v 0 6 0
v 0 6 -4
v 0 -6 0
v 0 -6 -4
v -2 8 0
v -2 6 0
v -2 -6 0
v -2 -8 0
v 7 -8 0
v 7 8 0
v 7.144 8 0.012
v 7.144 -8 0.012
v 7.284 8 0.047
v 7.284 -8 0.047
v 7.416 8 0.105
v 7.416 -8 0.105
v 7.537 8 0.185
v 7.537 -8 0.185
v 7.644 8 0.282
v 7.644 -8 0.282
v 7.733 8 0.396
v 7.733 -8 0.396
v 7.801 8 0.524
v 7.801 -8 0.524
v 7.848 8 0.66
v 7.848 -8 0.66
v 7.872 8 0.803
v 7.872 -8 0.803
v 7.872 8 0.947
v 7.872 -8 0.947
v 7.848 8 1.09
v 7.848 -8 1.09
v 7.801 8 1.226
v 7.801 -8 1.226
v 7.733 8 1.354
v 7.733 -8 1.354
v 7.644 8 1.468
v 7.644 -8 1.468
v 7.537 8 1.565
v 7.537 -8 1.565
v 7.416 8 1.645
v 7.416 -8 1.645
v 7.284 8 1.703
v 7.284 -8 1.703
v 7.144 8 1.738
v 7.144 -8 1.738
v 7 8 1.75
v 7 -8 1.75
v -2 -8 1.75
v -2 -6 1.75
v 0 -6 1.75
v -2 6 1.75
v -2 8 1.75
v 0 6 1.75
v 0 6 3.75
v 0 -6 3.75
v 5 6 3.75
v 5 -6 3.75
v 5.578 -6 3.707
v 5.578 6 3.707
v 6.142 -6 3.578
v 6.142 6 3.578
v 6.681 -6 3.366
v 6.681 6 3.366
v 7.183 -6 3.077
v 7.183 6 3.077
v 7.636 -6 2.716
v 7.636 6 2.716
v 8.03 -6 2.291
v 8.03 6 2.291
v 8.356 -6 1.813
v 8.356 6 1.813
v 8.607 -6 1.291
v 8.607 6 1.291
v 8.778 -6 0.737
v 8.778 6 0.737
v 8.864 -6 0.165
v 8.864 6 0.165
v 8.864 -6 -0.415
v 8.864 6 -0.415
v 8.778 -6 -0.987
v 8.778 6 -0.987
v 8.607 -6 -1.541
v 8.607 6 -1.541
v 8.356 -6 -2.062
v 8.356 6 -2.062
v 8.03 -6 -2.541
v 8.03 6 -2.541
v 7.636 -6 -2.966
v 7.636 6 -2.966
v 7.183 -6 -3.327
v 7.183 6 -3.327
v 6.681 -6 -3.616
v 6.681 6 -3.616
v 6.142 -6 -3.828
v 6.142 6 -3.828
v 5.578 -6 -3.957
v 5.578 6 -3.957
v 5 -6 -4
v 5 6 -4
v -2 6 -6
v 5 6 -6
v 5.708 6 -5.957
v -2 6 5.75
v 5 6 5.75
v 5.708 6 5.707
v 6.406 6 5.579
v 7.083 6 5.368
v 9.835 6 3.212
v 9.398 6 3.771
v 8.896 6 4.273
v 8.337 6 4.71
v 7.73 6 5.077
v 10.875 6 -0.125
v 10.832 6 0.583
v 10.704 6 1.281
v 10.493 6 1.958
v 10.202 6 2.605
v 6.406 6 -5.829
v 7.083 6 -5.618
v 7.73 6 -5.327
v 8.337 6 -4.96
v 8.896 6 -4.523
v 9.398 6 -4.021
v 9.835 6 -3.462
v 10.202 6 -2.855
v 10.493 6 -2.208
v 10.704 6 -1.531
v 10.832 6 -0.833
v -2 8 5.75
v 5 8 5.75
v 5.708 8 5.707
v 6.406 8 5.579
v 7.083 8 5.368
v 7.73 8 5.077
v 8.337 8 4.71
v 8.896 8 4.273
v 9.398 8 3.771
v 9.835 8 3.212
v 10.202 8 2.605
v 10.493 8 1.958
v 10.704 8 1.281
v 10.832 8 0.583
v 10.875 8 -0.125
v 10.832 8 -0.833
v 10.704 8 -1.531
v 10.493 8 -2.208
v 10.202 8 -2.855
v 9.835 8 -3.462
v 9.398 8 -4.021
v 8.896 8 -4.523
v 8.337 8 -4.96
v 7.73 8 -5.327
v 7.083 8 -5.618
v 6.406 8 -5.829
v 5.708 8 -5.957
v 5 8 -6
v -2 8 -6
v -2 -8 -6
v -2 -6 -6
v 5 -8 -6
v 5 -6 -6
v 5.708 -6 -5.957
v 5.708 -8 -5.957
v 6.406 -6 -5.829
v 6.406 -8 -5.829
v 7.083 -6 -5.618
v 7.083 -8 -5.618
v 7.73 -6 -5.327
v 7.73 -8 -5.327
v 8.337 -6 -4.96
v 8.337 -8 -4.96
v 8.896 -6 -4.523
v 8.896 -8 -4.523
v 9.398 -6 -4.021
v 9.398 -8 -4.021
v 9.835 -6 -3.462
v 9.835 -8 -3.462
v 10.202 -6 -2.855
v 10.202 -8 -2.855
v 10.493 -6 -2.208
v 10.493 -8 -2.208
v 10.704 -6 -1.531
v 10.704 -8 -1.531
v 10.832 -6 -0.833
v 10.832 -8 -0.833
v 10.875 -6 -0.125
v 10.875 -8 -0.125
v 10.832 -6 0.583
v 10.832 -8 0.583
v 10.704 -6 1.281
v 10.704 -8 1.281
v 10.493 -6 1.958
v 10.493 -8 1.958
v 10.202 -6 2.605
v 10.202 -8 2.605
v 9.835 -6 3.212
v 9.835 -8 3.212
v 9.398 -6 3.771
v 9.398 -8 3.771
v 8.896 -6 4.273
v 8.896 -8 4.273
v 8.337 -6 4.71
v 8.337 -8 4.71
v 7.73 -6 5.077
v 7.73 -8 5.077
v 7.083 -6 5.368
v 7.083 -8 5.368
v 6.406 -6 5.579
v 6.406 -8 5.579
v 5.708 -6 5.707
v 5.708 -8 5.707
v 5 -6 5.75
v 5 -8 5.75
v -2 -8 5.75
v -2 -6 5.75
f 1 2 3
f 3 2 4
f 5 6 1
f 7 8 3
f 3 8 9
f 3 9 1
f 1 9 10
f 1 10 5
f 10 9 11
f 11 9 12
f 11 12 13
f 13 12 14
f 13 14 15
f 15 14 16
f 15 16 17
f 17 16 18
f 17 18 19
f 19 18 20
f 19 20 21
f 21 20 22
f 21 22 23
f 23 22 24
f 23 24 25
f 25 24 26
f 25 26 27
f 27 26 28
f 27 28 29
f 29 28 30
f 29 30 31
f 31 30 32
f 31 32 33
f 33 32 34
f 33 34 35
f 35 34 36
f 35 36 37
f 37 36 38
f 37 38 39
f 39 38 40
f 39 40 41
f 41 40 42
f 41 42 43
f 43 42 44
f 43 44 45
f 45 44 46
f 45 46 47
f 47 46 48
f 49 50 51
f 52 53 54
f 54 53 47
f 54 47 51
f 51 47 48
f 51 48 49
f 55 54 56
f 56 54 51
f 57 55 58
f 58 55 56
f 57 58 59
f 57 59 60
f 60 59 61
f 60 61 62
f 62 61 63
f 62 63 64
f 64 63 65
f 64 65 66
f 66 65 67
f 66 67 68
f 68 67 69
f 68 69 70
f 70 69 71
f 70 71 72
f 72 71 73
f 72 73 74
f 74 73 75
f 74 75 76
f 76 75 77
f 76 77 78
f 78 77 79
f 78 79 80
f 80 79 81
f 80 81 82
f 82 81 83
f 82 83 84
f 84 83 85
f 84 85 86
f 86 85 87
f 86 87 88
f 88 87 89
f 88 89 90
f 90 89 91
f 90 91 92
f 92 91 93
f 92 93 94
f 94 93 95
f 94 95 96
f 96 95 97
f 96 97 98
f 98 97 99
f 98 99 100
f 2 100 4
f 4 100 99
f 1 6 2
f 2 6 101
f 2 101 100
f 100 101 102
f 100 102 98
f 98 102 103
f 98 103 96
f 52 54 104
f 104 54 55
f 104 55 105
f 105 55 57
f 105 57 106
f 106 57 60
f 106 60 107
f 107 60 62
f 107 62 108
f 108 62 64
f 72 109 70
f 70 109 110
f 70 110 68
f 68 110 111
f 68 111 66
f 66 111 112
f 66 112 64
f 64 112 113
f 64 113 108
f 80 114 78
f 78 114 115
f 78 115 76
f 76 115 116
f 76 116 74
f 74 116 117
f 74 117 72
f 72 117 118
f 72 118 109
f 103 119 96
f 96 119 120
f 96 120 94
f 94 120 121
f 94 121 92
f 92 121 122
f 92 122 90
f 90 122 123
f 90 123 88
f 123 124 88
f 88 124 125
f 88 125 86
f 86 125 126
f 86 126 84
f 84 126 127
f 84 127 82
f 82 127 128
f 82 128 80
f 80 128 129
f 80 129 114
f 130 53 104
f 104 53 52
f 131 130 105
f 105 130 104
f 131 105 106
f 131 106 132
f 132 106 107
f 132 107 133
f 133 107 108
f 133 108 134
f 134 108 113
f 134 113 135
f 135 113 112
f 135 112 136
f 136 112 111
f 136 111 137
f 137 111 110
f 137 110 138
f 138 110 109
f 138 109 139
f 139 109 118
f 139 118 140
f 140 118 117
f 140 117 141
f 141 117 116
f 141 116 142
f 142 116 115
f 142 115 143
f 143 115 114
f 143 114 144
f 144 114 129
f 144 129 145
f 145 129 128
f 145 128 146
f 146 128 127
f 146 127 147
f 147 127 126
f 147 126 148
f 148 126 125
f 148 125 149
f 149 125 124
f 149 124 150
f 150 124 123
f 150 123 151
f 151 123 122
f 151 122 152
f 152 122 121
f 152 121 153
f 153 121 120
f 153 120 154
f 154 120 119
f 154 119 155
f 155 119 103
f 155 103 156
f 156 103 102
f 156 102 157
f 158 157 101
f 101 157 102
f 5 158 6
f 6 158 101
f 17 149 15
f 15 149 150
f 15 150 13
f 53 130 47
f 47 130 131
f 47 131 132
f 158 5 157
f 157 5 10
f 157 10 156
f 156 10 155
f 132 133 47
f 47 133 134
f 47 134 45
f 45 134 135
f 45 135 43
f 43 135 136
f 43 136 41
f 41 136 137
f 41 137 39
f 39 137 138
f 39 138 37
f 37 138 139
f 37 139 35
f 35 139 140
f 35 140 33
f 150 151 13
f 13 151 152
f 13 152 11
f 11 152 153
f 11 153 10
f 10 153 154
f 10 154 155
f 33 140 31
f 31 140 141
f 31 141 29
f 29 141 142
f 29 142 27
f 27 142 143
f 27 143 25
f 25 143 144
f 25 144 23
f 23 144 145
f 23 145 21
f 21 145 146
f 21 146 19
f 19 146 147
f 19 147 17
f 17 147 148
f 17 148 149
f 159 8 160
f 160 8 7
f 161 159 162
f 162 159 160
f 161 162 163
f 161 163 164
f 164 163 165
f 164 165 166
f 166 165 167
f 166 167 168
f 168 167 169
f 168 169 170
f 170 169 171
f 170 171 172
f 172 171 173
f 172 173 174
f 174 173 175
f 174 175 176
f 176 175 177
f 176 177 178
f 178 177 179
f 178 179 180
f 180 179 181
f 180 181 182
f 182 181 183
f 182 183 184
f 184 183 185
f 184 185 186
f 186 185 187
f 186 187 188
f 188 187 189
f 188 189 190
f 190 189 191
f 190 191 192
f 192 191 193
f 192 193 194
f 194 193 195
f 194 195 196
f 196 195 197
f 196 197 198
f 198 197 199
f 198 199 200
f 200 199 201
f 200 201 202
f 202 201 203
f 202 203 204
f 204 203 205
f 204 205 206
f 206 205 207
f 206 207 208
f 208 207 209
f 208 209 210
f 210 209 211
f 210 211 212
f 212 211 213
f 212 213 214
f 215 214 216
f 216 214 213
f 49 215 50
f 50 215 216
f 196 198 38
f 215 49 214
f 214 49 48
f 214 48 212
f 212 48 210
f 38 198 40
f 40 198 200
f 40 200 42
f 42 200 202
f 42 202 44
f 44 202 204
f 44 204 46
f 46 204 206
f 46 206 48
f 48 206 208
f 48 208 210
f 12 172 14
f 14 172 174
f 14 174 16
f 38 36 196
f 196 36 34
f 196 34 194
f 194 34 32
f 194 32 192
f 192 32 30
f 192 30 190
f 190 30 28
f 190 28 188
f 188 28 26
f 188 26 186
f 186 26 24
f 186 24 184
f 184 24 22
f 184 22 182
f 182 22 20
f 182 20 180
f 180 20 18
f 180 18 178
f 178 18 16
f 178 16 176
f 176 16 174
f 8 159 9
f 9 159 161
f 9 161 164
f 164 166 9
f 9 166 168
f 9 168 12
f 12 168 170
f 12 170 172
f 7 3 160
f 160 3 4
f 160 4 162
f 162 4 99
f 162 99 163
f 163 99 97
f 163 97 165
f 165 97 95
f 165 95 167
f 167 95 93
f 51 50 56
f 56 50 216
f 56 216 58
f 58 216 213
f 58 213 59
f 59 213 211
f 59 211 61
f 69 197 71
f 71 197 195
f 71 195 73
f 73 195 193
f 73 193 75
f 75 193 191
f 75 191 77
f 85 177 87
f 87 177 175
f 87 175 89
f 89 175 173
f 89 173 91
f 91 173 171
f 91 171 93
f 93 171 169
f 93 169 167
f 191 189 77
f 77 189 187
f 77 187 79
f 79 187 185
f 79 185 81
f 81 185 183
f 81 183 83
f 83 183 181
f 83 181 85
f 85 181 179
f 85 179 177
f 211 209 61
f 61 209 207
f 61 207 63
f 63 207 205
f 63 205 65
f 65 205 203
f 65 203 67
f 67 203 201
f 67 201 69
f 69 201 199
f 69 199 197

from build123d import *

# Parameters (mm, degrees)
BOSS_EXTRUDE1_DEPTH = 6
BOSS_EXTRUDE2_START = 2
BOSS_EXTRUDE2_DEPTH = 2


with BuildPart() as part:
    # Sketch1 → Boss-Extrude1 (new, symmetric)
    with BuildSketch(Plane(origin=(0, 0, 0), x_dir=(1, 0, 0), z_dir=(0, 1, 0))):
        with BuildLine():
            Line((0, 0), (7, 0))
            ThreePointArc((7, 0), (7.875, -0.875), (7, -1.75))
            Line((7, -1.75), (0, -1.75))
            Line((0, -1.75), (0, -3.75))
            Line((0, -3.75), (5, -3.75))
            ThreePointArc((5, -3.75), (8.875, 0.125), (5, 4))
            Line((5, 4), (0, 4))
            Line((0, 4), (0, 0))
        make_face()
    extrude(amount=BOSS_EXTRUDE1_DEPTH, both=True)

    # Sketch2 → Boss-Extrude2 (add)
    with BuildSketch(Plane(origin=(0, 6, 0), x_dir=(1, 0, 0), z_dir=(0, 1, 0)).offset(BOSS_EXTRUDE2_START)):
        with BuildLine():
            Line((5, 6), (-2, 6))
            Line((-2, 6), (-2, 0))
            Line((-2, 0), (7, 0))
            ThreePointArc((7, 0), (7.875, -0.875), (7, -1.75))
            Line((7, -1.75), (-2, -1.75))
            Line((-2, -1.75), (-2, -5.75))
            Line((-2, -5.75), (5, -5.75))
            ThreePointArc((5, -5.75), (10.875, 0.125), (5, 6))
        make_face()
    boss_extrude2 = extrude(amount=-BOSS_EXTRUDE2_DEPTH)

    # Mirror1: Boss-Extrude2 across plane
    add(boss_extrude2.mirror(Plane.ZX))


solid = part.part
